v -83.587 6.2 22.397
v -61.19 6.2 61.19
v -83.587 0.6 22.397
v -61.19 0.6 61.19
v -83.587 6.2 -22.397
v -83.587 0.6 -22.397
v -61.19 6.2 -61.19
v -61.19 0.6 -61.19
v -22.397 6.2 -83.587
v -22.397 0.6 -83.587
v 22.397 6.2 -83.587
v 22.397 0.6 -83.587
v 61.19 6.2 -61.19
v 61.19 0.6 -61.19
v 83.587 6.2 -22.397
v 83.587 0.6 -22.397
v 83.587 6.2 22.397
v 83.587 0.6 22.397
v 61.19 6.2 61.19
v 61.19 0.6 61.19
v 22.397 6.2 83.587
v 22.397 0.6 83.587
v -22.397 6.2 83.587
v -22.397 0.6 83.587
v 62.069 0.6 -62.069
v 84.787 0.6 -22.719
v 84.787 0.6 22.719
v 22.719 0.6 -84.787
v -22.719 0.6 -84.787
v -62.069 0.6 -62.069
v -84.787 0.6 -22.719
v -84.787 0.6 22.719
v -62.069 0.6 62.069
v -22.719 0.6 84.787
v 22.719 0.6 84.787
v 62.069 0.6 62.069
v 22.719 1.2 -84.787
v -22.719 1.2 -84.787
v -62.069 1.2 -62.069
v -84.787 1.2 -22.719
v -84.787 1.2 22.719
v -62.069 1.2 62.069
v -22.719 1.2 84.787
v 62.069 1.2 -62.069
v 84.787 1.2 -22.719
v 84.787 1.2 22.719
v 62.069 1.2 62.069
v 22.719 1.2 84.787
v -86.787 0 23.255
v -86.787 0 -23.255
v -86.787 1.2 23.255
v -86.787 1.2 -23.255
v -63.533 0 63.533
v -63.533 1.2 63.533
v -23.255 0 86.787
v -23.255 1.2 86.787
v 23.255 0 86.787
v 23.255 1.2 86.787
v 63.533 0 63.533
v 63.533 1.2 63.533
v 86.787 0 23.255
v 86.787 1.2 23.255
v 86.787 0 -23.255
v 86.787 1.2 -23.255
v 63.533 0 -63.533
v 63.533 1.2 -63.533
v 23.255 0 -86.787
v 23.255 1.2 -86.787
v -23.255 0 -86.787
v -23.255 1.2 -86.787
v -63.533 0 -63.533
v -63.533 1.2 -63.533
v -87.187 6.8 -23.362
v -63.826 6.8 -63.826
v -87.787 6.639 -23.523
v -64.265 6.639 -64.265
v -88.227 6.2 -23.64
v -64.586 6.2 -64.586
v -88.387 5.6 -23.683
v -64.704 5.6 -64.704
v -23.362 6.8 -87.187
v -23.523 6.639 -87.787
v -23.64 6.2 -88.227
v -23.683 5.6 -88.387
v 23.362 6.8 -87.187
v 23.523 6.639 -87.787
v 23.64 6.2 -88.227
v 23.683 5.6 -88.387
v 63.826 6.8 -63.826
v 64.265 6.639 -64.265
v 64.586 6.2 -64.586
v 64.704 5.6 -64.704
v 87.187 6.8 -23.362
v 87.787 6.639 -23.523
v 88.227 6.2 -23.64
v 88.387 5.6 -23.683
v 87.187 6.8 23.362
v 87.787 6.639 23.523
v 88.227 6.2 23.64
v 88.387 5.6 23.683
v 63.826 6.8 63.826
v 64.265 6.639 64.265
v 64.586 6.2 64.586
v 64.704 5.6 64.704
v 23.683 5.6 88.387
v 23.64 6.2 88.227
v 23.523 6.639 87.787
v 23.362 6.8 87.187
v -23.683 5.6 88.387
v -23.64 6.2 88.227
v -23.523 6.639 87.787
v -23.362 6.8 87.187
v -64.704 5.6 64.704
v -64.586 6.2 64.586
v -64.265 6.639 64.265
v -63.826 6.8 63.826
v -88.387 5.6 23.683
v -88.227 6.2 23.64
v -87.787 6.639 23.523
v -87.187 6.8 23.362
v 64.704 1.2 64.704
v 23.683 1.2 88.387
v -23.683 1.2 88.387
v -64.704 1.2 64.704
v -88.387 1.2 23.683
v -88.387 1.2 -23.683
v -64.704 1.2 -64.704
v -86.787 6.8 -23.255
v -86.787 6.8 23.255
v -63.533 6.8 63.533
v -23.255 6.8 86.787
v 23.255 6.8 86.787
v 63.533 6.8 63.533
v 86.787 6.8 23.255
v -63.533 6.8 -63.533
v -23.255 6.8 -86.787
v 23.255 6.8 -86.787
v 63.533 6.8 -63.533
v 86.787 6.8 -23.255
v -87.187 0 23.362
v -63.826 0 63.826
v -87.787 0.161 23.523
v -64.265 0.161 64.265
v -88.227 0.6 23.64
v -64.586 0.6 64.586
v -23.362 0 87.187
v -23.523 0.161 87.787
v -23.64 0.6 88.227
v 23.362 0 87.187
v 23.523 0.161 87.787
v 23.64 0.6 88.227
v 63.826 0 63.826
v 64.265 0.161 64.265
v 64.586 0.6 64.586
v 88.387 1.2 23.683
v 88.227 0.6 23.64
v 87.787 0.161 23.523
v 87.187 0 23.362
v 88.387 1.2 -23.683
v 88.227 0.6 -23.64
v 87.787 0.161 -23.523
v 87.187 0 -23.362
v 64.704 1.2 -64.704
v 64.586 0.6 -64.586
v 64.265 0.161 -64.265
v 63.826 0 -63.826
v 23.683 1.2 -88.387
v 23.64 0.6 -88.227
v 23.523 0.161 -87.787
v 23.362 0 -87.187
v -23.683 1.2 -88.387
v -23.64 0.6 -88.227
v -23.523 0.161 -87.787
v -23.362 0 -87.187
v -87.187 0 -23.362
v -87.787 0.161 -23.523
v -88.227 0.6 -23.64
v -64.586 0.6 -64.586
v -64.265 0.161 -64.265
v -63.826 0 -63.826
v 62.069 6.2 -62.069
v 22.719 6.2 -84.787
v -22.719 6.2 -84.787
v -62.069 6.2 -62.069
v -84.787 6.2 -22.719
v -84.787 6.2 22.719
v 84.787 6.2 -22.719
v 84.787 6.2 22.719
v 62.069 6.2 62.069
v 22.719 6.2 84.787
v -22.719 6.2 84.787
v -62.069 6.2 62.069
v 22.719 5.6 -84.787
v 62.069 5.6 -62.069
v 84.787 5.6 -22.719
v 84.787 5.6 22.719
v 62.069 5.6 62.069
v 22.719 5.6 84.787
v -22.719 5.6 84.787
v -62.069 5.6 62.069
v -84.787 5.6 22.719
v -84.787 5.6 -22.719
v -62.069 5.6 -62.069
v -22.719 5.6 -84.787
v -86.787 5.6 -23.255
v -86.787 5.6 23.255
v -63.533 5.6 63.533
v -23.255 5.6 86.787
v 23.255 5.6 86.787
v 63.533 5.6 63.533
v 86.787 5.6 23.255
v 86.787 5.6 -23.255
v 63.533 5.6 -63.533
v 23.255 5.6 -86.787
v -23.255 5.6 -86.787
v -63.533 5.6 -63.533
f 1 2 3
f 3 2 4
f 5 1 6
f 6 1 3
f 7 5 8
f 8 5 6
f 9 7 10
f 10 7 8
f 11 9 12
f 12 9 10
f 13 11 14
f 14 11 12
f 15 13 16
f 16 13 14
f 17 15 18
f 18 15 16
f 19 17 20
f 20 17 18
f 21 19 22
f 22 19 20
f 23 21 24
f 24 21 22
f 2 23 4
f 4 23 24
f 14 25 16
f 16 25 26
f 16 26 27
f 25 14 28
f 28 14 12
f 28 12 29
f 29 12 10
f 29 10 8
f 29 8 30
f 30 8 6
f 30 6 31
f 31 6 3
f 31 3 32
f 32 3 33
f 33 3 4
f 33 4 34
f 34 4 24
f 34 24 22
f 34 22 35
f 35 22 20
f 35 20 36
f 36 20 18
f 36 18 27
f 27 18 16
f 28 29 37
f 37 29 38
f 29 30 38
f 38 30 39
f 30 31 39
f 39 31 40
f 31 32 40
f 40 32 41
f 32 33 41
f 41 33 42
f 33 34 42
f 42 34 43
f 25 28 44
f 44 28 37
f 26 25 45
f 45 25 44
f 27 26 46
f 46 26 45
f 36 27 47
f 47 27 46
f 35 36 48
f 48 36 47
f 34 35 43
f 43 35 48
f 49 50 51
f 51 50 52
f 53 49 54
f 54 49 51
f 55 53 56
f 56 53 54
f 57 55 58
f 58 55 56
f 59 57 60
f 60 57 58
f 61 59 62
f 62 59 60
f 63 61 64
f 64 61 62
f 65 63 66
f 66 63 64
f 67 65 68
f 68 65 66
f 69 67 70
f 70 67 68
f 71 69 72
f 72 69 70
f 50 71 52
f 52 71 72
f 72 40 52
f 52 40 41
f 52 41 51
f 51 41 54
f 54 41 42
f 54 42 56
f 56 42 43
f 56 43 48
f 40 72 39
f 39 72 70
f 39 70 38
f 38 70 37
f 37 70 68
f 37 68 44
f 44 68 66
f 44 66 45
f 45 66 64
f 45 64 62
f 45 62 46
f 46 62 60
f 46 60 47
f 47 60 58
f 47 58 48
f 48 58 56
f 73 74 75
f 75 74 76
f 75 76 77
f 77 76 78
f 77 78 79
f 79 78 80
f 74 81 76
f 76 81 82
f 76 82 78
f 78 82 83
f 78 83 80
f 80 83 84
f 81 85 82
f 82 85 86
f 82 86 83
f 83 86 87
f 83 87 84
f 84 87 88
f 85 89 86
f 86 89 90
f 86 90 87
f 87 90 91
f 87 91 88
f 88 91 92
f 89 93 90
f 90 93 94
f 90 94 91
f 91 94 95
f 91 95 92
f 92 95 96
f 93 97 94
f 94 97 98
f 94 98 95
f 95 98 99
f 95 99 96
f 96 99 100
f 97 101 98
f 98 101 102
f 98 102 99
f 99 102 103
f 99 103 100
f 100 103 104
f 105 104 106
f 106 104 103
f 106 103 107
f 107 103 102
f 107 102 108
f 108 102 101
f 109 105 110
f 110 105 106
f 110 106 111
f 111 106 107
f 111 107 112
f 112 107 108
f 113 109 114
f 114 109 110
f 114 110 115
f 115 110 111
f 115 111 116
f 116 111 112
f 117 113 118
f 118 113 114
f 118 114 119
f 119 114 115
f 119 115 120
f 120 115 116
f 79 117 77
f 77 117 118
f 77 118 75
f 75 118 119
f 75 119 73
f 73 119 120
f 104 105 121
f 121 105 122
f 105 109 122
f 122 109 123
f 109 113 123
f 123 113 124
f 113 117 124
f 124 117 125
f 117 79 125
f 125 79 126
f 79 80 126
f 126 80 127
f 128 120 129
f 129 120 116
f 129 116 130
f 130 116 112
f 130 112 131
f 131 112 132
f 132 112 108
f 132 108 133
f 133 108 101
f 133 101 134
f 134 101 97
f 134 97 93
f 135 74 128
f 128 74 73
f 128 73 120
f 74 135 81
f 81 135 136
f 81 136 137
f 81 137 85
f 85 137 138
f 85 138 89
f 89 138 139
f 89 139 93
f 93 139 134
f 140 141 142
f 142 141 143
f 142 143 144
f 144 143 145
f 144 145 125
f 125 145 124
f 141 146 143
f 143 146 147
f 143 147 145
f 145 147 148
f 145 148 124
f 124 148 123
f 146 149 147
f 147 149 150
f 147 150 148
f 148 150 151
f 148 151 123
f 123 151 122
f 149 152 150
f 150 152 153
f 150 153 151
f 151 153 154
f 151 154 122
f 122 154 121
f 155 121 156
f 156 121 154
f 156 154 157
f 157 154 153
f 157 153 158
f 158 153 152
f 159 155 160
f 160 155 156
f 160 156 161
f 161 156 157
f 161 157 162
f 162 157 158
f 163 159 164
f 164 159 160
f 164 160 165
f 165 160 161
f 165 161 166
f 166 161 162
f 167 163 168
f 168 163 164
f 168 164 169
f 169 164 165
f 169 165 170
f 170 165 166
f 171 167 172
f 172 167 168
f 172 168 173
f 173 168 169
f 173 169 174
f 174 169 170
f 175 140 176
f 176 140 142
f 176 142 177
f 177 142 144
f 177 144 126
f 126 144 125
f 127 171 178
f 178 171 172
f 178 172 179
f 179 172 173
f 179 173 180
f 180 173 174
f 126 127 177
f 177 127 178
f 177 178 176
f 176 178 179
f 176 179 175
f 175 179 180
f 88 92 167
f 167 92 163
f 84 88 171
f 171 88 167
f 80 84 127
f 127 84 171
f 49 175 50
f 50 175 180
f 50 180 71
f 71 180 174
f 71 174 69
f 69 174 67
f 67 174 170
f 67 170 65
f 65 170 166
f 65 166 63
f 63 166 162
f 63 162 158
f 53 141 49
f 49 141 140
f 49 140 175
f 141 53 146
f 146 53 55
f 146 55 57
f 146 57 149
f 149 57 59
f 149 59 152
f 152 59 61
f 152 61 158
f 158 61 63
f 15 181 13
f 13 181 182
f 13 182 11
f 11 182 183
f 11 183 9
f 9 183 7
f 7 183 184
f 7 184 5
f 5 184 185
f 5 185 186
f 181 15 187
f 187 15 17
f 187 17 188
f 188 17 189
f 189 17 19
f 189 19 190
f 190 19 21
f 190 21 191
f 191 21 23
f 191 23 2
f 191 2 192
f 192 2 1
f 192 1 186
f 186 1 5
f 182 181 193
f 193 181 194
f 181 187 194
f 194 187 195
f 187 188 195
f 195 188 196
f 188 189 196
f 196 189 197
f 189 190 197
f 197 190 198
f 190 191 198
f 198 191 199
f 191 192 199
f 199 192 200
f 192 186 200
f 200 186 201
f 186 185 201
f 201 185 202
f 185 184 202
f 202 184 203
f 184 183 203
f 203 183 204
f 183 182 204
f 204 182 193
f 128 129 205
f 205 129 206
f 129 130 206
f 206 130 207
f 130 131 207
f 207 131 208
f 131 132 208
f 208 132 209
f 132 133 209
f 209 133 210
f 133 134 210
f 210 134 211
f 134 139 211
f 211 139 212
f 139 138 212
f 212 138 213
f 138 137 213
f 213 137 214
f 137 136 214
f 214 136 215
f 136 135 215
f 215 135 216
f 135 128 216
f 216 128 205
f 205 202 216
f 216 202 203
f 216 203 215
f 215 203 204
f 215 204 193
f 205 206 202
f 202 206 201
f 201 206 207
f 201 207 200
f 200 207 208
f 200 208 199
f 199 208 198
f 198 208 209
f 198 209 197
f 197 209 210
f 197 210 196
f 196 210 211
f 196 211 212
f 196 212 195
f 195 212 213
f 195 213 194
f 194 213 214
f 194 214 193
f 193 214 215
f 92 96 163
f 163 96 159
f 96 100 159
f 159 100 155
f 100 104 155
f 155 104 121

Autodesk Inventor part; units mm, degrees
ref_plane "YZ Plane" through (0, 0, 0) normal (1, 0, 0) x (0, 1, 0)
ref_plane "XZ Plane" through (0, 0, 0) normal (0, 1, 0) x (-1, 0, 0)
sketch "스케치1" plane through (0, 0, 0) normal (0, 1, 0) x (-1, 0, 0)
  line L0 (-62.3615, 62.3615) -> (-22.8259, 85.1874)
  line L1 (-22.8259, 85.1874) -> (22.8259, 85.1874)
  line L2 (22.8259, 85.1874) -> (62.3615, 62.3615)
  line L3 (62.3615, 62.3615) -> (85.1874, 22.8259)
  line L4 (85.1874, 22.8259) -> (85.1874, -22.8259)
  line L5 (85.1874, -22.8259) -> (62.3615, -62.3615)
  line L6 (62.3615, -62.3615) -> (22.8259, -85.1874)
  line L7 (22.8259, -85.1874) -> (-22.8259, -85.1874)
  line L8 (-22.8259, -85.1874) -> (-62.3615, -62.3615)
  line L9 (-62.3615, -62.3615) -> (-85.1874, -22.8259)
  line L10 (-85.1874, -22.8259) -> (-85.1874, 22.8259)
  line L11 (-85.1874, 22.8259) -> (-62.3615, 62.3615)
  line L12 (88.3874, -23.6833) -> (64.7041, -64.7041)
  line L13 (64.7041, -64.7041) -> (23.6833, -88.3874)
  line L14 (23.6833, -88.3874) -> (-23.6833, -88.3874)
  line L15 (-23.6833, -88.3874) -> (-64.7041, -64.7041)
  line L16 (-64.7041, -64.7041) -> (-88.3874, -23.6833)
  line L17 (-88.3874, -23.6833) -> (-88.3874, 23.6833)
  line L18 (-88.3874, 23.6833) -> (-64.7041, 64.7041)
  line L19 (-64.7041, 64.7041) -> (-23.6833, 88.3874)
  line L20 (-23.6833, 88.3874) -> (23.6833, 88.3874)
  line L21 (23.6833, 88.3874) -> (64.7041, 64.7041)
  line L22 (64.7041, 64.7041) -> (88.3874, 23.6833)
  line L23 (88.3874, 23.6833) -> (88.3874, -23.6833)
  point P0 (0, 0)
  point P1 (0, 0)
  point P2 (0, 0)
  dimension "d0" = 176.385
  dimension "d1" = 3.2
extrude "돌출1" add sketch "스케치1" along normal blind 6.8 contours L0 L1 L2 L3 L4 L5 L6 L7 L8 L9 L10 L11 | L12 L13 L14 L15 L16 L17 L18 L19 L20 L21 L22 L23
sketch "스케치2" plane through (0, 6.8, 0) normal (0, 1, 0) x (1, 0, 0)
  line L0 (-23.2546, 86.7874) -> (23.2546, 86.7874)
  line L1 (23.2546, 86.7874) -> (63.5328, 63.5328)
  line L2 (63.5328, 63.5328) -> (86.7874, 23.2546)
  line L3 (86.7874, 23.2546) -> (86.7874, -23.2546)
  line L4 (86.7874, -23.2546) -> (63.5328, -63.5328)
  line L5 (63.5328, -63.5328) -> (23.2546, -86.7874)
  line L6 (23.2546, -86.7874) -> (-23.2546, -86.7874)
  line L7 (-23.2546, -86.7874) -> (-63.5328, -63.5328)
  line L8 (-63.5328, -63.5328) -> (-86.7874, -23.2546)
  line L9 (-86.7874, -23.2546) -> (-86.7874, 23.2546)
  line L10 (-86.7874, 23.2546) -> (-63.5328, 63.5328)
  line L11 (-63.5328, 63.5328) -> (-23.2546, 86.7874)
  line L12 (-88.3874, 23.6833) -> (-88.3874, -23.6833) projected
  line L13 (22.7187, -84.7874) -> (-22.7187, -84.7874)
  line L14 (-22.7187, -84.7874) -> (-62.0687, -62.0687)
  line L15 (-62.0687, -62.0687) -> (-84.7874, -22.7187)
  line L16 (-84.7874, -22.7187) -> (-84.7874, 22.7187)
  line L17 (-84.7874, 22.7187) -> (-62.0687, 62.0687)
  line L18 (-62.0687, 62.0687) -> (-22.7187, 84.7874)
  line L19 (-22.7187, 84.7874) -> (22.7187, 84.7874)
  line L20 (22.7187, 84.7874) -> (62.0687, 62.0687)
  line L21 (62.0687, 62.0687) -> (84.7874, 22.7187)
  line L22 (84.7874, 22.7187) -> (84.7874, -22.7187)
  line L23 (84.7874, -22.7187) -> (62.0687, -62.0687)
  line L24 (62.0687, -62.0687) -> (22.7187, -84.7874)
  point P0 (0, 0)
  point P1 (0, 0)
  point P2 (0, 0)
  dimension "d4" = 1.6
  dimension "d5" = 2
extrude "돌출2" cut sketch "스케치2" against normal blind 1.2
sketch "스케치5" plane through (0, 6.8, 0) normal (0, 1, 0) x (1, 0, 0)
  line L0 (-62.0687, -62.0687) -> (-22.7187, -84.7874) projected
  line L1 (-22.7187, -84.7874) -> (22.7187, -84.7874) projected
  line L2 (22.7187, -84.7874) -> (62.0687, -62.0687) projected
  line L3 (62.0687, -62.0687) -> (84.7874, -22.7187) projected
  line L4 (84.7874, -22.7187) -> (84.7874, 22.7187) projected
  line L5 (84.7874, 22.7187) -> (62.0687, 62.0687) projected
  line L6 (62.0687, 62.0687) -> (22.7187, 84.7874) projected
  line L7 (22.7187, 84.7874) -> (-22.7187, 84.7874) projected
  line L8 (-22.7187, 84.7874) -> (-62.0687, 62.0687) projected
  line L9 (-62.0687, 62.0687) -> (-84.7874, 22.7187) projected
  line L10 (-84.7874, 22.7187) -> (-84.7874, -22.7187) projected
  line L11 (-84.7874, -22.7187) -> (-62.0687, -62.0687) projected
  point P0 (0, 0)
extrude "돌출5" cut sketch "스케치5" against normal blind 0.6
fillet "모깎기1" radius 1.2 24 edges at (76.5457, 0, 44.1937) (76.5457, 6.8, 44.1937) (88.3874, 6.8, 0) (88.3874, 0, 0) (76.5457, 6.8, -44.1937) (76.5457, 0, -44.1937) (44.1937, 6.8, -76.5457) (44.1937, 0, -76.5457) (0, 0, -88.3874) (0, 6.8, -88.3874) (-44.1937, 6.8, -76.5457) (-44.1937, 0, -76.5457) (-76.5457, 0, -44.1937) (-76.5457, 6.8, -44.1937) (-88.3874, 0, 0) (-88.3874, 6.8, 0) (-76.5457, 0, 44.1937) (-76.5457, 6.8, 44.1937) (-44.1937, 0, 76.5457) (-44.1937, 6.8, 76.5457) (0, 0, 88.3874) (0, 6.8, 88.3874) (44.1937, 0, 76.5457) (44.1937, 6.8, 76.5457)
ref_plane "작업 평면1" through (0, 3.4, 0) normal (0, -1, 0) x (1, 0, 0)
mirror "미러1" about plane through (0, 3.4, 0) normal (0, -1, 0) of "돌출5", "돌출2"
sketch "스케치9" plane through (-22.7187, 0.6, 84.7874) normal (0, -1, 0) x (1, 0, 0)
  line L0 (0.3215, -168.3748) -> (-38.4715, -145.9776)
  line L1 (-38.4715, -145.9776) -> (-60.8687, -107.1846)
  line L2 (-60.8687, -107.1846) -> (-60.8687, -62.3902)
  line L3 (-60.8687, -62.3902) -> (-38.4715, -23.5972)
  line L4 (-38.4715, -23.5972) -> (0.3215, -1.2)
  line L5 (0.3215, -1.2) -> (45.1159, -1.2)
  line L6 (45.1159, -1.2) -> (83.909, -23.5972)
  line L7 (83.909, -23.5972) -> (106.3061, -62.3902)
  line L8 (106.3061, -62.3902) -> (106.3061, -107.1846)
  line L9 (106.3061, -107.1846) -> (83.909, -145.9776)
  line L10 (83.909, -145.9776) -> (45.1159, -168.3748)
  line L11 (45.1159, -168.3748) -> (0.3215, -168.3748)
  line L12 (107.5061, -62.0687) -> (107.5061, -107.5061) projected
  point P0 (22.7187, -84.7874)
  point P1 (22.7187, -84.7874)
  dimension "d37" = 1.2
extrude "돌출9" cut sketch "스케치9" against normal blind 10
properties part number "(x2)_POSPA_Large_Bottom"
